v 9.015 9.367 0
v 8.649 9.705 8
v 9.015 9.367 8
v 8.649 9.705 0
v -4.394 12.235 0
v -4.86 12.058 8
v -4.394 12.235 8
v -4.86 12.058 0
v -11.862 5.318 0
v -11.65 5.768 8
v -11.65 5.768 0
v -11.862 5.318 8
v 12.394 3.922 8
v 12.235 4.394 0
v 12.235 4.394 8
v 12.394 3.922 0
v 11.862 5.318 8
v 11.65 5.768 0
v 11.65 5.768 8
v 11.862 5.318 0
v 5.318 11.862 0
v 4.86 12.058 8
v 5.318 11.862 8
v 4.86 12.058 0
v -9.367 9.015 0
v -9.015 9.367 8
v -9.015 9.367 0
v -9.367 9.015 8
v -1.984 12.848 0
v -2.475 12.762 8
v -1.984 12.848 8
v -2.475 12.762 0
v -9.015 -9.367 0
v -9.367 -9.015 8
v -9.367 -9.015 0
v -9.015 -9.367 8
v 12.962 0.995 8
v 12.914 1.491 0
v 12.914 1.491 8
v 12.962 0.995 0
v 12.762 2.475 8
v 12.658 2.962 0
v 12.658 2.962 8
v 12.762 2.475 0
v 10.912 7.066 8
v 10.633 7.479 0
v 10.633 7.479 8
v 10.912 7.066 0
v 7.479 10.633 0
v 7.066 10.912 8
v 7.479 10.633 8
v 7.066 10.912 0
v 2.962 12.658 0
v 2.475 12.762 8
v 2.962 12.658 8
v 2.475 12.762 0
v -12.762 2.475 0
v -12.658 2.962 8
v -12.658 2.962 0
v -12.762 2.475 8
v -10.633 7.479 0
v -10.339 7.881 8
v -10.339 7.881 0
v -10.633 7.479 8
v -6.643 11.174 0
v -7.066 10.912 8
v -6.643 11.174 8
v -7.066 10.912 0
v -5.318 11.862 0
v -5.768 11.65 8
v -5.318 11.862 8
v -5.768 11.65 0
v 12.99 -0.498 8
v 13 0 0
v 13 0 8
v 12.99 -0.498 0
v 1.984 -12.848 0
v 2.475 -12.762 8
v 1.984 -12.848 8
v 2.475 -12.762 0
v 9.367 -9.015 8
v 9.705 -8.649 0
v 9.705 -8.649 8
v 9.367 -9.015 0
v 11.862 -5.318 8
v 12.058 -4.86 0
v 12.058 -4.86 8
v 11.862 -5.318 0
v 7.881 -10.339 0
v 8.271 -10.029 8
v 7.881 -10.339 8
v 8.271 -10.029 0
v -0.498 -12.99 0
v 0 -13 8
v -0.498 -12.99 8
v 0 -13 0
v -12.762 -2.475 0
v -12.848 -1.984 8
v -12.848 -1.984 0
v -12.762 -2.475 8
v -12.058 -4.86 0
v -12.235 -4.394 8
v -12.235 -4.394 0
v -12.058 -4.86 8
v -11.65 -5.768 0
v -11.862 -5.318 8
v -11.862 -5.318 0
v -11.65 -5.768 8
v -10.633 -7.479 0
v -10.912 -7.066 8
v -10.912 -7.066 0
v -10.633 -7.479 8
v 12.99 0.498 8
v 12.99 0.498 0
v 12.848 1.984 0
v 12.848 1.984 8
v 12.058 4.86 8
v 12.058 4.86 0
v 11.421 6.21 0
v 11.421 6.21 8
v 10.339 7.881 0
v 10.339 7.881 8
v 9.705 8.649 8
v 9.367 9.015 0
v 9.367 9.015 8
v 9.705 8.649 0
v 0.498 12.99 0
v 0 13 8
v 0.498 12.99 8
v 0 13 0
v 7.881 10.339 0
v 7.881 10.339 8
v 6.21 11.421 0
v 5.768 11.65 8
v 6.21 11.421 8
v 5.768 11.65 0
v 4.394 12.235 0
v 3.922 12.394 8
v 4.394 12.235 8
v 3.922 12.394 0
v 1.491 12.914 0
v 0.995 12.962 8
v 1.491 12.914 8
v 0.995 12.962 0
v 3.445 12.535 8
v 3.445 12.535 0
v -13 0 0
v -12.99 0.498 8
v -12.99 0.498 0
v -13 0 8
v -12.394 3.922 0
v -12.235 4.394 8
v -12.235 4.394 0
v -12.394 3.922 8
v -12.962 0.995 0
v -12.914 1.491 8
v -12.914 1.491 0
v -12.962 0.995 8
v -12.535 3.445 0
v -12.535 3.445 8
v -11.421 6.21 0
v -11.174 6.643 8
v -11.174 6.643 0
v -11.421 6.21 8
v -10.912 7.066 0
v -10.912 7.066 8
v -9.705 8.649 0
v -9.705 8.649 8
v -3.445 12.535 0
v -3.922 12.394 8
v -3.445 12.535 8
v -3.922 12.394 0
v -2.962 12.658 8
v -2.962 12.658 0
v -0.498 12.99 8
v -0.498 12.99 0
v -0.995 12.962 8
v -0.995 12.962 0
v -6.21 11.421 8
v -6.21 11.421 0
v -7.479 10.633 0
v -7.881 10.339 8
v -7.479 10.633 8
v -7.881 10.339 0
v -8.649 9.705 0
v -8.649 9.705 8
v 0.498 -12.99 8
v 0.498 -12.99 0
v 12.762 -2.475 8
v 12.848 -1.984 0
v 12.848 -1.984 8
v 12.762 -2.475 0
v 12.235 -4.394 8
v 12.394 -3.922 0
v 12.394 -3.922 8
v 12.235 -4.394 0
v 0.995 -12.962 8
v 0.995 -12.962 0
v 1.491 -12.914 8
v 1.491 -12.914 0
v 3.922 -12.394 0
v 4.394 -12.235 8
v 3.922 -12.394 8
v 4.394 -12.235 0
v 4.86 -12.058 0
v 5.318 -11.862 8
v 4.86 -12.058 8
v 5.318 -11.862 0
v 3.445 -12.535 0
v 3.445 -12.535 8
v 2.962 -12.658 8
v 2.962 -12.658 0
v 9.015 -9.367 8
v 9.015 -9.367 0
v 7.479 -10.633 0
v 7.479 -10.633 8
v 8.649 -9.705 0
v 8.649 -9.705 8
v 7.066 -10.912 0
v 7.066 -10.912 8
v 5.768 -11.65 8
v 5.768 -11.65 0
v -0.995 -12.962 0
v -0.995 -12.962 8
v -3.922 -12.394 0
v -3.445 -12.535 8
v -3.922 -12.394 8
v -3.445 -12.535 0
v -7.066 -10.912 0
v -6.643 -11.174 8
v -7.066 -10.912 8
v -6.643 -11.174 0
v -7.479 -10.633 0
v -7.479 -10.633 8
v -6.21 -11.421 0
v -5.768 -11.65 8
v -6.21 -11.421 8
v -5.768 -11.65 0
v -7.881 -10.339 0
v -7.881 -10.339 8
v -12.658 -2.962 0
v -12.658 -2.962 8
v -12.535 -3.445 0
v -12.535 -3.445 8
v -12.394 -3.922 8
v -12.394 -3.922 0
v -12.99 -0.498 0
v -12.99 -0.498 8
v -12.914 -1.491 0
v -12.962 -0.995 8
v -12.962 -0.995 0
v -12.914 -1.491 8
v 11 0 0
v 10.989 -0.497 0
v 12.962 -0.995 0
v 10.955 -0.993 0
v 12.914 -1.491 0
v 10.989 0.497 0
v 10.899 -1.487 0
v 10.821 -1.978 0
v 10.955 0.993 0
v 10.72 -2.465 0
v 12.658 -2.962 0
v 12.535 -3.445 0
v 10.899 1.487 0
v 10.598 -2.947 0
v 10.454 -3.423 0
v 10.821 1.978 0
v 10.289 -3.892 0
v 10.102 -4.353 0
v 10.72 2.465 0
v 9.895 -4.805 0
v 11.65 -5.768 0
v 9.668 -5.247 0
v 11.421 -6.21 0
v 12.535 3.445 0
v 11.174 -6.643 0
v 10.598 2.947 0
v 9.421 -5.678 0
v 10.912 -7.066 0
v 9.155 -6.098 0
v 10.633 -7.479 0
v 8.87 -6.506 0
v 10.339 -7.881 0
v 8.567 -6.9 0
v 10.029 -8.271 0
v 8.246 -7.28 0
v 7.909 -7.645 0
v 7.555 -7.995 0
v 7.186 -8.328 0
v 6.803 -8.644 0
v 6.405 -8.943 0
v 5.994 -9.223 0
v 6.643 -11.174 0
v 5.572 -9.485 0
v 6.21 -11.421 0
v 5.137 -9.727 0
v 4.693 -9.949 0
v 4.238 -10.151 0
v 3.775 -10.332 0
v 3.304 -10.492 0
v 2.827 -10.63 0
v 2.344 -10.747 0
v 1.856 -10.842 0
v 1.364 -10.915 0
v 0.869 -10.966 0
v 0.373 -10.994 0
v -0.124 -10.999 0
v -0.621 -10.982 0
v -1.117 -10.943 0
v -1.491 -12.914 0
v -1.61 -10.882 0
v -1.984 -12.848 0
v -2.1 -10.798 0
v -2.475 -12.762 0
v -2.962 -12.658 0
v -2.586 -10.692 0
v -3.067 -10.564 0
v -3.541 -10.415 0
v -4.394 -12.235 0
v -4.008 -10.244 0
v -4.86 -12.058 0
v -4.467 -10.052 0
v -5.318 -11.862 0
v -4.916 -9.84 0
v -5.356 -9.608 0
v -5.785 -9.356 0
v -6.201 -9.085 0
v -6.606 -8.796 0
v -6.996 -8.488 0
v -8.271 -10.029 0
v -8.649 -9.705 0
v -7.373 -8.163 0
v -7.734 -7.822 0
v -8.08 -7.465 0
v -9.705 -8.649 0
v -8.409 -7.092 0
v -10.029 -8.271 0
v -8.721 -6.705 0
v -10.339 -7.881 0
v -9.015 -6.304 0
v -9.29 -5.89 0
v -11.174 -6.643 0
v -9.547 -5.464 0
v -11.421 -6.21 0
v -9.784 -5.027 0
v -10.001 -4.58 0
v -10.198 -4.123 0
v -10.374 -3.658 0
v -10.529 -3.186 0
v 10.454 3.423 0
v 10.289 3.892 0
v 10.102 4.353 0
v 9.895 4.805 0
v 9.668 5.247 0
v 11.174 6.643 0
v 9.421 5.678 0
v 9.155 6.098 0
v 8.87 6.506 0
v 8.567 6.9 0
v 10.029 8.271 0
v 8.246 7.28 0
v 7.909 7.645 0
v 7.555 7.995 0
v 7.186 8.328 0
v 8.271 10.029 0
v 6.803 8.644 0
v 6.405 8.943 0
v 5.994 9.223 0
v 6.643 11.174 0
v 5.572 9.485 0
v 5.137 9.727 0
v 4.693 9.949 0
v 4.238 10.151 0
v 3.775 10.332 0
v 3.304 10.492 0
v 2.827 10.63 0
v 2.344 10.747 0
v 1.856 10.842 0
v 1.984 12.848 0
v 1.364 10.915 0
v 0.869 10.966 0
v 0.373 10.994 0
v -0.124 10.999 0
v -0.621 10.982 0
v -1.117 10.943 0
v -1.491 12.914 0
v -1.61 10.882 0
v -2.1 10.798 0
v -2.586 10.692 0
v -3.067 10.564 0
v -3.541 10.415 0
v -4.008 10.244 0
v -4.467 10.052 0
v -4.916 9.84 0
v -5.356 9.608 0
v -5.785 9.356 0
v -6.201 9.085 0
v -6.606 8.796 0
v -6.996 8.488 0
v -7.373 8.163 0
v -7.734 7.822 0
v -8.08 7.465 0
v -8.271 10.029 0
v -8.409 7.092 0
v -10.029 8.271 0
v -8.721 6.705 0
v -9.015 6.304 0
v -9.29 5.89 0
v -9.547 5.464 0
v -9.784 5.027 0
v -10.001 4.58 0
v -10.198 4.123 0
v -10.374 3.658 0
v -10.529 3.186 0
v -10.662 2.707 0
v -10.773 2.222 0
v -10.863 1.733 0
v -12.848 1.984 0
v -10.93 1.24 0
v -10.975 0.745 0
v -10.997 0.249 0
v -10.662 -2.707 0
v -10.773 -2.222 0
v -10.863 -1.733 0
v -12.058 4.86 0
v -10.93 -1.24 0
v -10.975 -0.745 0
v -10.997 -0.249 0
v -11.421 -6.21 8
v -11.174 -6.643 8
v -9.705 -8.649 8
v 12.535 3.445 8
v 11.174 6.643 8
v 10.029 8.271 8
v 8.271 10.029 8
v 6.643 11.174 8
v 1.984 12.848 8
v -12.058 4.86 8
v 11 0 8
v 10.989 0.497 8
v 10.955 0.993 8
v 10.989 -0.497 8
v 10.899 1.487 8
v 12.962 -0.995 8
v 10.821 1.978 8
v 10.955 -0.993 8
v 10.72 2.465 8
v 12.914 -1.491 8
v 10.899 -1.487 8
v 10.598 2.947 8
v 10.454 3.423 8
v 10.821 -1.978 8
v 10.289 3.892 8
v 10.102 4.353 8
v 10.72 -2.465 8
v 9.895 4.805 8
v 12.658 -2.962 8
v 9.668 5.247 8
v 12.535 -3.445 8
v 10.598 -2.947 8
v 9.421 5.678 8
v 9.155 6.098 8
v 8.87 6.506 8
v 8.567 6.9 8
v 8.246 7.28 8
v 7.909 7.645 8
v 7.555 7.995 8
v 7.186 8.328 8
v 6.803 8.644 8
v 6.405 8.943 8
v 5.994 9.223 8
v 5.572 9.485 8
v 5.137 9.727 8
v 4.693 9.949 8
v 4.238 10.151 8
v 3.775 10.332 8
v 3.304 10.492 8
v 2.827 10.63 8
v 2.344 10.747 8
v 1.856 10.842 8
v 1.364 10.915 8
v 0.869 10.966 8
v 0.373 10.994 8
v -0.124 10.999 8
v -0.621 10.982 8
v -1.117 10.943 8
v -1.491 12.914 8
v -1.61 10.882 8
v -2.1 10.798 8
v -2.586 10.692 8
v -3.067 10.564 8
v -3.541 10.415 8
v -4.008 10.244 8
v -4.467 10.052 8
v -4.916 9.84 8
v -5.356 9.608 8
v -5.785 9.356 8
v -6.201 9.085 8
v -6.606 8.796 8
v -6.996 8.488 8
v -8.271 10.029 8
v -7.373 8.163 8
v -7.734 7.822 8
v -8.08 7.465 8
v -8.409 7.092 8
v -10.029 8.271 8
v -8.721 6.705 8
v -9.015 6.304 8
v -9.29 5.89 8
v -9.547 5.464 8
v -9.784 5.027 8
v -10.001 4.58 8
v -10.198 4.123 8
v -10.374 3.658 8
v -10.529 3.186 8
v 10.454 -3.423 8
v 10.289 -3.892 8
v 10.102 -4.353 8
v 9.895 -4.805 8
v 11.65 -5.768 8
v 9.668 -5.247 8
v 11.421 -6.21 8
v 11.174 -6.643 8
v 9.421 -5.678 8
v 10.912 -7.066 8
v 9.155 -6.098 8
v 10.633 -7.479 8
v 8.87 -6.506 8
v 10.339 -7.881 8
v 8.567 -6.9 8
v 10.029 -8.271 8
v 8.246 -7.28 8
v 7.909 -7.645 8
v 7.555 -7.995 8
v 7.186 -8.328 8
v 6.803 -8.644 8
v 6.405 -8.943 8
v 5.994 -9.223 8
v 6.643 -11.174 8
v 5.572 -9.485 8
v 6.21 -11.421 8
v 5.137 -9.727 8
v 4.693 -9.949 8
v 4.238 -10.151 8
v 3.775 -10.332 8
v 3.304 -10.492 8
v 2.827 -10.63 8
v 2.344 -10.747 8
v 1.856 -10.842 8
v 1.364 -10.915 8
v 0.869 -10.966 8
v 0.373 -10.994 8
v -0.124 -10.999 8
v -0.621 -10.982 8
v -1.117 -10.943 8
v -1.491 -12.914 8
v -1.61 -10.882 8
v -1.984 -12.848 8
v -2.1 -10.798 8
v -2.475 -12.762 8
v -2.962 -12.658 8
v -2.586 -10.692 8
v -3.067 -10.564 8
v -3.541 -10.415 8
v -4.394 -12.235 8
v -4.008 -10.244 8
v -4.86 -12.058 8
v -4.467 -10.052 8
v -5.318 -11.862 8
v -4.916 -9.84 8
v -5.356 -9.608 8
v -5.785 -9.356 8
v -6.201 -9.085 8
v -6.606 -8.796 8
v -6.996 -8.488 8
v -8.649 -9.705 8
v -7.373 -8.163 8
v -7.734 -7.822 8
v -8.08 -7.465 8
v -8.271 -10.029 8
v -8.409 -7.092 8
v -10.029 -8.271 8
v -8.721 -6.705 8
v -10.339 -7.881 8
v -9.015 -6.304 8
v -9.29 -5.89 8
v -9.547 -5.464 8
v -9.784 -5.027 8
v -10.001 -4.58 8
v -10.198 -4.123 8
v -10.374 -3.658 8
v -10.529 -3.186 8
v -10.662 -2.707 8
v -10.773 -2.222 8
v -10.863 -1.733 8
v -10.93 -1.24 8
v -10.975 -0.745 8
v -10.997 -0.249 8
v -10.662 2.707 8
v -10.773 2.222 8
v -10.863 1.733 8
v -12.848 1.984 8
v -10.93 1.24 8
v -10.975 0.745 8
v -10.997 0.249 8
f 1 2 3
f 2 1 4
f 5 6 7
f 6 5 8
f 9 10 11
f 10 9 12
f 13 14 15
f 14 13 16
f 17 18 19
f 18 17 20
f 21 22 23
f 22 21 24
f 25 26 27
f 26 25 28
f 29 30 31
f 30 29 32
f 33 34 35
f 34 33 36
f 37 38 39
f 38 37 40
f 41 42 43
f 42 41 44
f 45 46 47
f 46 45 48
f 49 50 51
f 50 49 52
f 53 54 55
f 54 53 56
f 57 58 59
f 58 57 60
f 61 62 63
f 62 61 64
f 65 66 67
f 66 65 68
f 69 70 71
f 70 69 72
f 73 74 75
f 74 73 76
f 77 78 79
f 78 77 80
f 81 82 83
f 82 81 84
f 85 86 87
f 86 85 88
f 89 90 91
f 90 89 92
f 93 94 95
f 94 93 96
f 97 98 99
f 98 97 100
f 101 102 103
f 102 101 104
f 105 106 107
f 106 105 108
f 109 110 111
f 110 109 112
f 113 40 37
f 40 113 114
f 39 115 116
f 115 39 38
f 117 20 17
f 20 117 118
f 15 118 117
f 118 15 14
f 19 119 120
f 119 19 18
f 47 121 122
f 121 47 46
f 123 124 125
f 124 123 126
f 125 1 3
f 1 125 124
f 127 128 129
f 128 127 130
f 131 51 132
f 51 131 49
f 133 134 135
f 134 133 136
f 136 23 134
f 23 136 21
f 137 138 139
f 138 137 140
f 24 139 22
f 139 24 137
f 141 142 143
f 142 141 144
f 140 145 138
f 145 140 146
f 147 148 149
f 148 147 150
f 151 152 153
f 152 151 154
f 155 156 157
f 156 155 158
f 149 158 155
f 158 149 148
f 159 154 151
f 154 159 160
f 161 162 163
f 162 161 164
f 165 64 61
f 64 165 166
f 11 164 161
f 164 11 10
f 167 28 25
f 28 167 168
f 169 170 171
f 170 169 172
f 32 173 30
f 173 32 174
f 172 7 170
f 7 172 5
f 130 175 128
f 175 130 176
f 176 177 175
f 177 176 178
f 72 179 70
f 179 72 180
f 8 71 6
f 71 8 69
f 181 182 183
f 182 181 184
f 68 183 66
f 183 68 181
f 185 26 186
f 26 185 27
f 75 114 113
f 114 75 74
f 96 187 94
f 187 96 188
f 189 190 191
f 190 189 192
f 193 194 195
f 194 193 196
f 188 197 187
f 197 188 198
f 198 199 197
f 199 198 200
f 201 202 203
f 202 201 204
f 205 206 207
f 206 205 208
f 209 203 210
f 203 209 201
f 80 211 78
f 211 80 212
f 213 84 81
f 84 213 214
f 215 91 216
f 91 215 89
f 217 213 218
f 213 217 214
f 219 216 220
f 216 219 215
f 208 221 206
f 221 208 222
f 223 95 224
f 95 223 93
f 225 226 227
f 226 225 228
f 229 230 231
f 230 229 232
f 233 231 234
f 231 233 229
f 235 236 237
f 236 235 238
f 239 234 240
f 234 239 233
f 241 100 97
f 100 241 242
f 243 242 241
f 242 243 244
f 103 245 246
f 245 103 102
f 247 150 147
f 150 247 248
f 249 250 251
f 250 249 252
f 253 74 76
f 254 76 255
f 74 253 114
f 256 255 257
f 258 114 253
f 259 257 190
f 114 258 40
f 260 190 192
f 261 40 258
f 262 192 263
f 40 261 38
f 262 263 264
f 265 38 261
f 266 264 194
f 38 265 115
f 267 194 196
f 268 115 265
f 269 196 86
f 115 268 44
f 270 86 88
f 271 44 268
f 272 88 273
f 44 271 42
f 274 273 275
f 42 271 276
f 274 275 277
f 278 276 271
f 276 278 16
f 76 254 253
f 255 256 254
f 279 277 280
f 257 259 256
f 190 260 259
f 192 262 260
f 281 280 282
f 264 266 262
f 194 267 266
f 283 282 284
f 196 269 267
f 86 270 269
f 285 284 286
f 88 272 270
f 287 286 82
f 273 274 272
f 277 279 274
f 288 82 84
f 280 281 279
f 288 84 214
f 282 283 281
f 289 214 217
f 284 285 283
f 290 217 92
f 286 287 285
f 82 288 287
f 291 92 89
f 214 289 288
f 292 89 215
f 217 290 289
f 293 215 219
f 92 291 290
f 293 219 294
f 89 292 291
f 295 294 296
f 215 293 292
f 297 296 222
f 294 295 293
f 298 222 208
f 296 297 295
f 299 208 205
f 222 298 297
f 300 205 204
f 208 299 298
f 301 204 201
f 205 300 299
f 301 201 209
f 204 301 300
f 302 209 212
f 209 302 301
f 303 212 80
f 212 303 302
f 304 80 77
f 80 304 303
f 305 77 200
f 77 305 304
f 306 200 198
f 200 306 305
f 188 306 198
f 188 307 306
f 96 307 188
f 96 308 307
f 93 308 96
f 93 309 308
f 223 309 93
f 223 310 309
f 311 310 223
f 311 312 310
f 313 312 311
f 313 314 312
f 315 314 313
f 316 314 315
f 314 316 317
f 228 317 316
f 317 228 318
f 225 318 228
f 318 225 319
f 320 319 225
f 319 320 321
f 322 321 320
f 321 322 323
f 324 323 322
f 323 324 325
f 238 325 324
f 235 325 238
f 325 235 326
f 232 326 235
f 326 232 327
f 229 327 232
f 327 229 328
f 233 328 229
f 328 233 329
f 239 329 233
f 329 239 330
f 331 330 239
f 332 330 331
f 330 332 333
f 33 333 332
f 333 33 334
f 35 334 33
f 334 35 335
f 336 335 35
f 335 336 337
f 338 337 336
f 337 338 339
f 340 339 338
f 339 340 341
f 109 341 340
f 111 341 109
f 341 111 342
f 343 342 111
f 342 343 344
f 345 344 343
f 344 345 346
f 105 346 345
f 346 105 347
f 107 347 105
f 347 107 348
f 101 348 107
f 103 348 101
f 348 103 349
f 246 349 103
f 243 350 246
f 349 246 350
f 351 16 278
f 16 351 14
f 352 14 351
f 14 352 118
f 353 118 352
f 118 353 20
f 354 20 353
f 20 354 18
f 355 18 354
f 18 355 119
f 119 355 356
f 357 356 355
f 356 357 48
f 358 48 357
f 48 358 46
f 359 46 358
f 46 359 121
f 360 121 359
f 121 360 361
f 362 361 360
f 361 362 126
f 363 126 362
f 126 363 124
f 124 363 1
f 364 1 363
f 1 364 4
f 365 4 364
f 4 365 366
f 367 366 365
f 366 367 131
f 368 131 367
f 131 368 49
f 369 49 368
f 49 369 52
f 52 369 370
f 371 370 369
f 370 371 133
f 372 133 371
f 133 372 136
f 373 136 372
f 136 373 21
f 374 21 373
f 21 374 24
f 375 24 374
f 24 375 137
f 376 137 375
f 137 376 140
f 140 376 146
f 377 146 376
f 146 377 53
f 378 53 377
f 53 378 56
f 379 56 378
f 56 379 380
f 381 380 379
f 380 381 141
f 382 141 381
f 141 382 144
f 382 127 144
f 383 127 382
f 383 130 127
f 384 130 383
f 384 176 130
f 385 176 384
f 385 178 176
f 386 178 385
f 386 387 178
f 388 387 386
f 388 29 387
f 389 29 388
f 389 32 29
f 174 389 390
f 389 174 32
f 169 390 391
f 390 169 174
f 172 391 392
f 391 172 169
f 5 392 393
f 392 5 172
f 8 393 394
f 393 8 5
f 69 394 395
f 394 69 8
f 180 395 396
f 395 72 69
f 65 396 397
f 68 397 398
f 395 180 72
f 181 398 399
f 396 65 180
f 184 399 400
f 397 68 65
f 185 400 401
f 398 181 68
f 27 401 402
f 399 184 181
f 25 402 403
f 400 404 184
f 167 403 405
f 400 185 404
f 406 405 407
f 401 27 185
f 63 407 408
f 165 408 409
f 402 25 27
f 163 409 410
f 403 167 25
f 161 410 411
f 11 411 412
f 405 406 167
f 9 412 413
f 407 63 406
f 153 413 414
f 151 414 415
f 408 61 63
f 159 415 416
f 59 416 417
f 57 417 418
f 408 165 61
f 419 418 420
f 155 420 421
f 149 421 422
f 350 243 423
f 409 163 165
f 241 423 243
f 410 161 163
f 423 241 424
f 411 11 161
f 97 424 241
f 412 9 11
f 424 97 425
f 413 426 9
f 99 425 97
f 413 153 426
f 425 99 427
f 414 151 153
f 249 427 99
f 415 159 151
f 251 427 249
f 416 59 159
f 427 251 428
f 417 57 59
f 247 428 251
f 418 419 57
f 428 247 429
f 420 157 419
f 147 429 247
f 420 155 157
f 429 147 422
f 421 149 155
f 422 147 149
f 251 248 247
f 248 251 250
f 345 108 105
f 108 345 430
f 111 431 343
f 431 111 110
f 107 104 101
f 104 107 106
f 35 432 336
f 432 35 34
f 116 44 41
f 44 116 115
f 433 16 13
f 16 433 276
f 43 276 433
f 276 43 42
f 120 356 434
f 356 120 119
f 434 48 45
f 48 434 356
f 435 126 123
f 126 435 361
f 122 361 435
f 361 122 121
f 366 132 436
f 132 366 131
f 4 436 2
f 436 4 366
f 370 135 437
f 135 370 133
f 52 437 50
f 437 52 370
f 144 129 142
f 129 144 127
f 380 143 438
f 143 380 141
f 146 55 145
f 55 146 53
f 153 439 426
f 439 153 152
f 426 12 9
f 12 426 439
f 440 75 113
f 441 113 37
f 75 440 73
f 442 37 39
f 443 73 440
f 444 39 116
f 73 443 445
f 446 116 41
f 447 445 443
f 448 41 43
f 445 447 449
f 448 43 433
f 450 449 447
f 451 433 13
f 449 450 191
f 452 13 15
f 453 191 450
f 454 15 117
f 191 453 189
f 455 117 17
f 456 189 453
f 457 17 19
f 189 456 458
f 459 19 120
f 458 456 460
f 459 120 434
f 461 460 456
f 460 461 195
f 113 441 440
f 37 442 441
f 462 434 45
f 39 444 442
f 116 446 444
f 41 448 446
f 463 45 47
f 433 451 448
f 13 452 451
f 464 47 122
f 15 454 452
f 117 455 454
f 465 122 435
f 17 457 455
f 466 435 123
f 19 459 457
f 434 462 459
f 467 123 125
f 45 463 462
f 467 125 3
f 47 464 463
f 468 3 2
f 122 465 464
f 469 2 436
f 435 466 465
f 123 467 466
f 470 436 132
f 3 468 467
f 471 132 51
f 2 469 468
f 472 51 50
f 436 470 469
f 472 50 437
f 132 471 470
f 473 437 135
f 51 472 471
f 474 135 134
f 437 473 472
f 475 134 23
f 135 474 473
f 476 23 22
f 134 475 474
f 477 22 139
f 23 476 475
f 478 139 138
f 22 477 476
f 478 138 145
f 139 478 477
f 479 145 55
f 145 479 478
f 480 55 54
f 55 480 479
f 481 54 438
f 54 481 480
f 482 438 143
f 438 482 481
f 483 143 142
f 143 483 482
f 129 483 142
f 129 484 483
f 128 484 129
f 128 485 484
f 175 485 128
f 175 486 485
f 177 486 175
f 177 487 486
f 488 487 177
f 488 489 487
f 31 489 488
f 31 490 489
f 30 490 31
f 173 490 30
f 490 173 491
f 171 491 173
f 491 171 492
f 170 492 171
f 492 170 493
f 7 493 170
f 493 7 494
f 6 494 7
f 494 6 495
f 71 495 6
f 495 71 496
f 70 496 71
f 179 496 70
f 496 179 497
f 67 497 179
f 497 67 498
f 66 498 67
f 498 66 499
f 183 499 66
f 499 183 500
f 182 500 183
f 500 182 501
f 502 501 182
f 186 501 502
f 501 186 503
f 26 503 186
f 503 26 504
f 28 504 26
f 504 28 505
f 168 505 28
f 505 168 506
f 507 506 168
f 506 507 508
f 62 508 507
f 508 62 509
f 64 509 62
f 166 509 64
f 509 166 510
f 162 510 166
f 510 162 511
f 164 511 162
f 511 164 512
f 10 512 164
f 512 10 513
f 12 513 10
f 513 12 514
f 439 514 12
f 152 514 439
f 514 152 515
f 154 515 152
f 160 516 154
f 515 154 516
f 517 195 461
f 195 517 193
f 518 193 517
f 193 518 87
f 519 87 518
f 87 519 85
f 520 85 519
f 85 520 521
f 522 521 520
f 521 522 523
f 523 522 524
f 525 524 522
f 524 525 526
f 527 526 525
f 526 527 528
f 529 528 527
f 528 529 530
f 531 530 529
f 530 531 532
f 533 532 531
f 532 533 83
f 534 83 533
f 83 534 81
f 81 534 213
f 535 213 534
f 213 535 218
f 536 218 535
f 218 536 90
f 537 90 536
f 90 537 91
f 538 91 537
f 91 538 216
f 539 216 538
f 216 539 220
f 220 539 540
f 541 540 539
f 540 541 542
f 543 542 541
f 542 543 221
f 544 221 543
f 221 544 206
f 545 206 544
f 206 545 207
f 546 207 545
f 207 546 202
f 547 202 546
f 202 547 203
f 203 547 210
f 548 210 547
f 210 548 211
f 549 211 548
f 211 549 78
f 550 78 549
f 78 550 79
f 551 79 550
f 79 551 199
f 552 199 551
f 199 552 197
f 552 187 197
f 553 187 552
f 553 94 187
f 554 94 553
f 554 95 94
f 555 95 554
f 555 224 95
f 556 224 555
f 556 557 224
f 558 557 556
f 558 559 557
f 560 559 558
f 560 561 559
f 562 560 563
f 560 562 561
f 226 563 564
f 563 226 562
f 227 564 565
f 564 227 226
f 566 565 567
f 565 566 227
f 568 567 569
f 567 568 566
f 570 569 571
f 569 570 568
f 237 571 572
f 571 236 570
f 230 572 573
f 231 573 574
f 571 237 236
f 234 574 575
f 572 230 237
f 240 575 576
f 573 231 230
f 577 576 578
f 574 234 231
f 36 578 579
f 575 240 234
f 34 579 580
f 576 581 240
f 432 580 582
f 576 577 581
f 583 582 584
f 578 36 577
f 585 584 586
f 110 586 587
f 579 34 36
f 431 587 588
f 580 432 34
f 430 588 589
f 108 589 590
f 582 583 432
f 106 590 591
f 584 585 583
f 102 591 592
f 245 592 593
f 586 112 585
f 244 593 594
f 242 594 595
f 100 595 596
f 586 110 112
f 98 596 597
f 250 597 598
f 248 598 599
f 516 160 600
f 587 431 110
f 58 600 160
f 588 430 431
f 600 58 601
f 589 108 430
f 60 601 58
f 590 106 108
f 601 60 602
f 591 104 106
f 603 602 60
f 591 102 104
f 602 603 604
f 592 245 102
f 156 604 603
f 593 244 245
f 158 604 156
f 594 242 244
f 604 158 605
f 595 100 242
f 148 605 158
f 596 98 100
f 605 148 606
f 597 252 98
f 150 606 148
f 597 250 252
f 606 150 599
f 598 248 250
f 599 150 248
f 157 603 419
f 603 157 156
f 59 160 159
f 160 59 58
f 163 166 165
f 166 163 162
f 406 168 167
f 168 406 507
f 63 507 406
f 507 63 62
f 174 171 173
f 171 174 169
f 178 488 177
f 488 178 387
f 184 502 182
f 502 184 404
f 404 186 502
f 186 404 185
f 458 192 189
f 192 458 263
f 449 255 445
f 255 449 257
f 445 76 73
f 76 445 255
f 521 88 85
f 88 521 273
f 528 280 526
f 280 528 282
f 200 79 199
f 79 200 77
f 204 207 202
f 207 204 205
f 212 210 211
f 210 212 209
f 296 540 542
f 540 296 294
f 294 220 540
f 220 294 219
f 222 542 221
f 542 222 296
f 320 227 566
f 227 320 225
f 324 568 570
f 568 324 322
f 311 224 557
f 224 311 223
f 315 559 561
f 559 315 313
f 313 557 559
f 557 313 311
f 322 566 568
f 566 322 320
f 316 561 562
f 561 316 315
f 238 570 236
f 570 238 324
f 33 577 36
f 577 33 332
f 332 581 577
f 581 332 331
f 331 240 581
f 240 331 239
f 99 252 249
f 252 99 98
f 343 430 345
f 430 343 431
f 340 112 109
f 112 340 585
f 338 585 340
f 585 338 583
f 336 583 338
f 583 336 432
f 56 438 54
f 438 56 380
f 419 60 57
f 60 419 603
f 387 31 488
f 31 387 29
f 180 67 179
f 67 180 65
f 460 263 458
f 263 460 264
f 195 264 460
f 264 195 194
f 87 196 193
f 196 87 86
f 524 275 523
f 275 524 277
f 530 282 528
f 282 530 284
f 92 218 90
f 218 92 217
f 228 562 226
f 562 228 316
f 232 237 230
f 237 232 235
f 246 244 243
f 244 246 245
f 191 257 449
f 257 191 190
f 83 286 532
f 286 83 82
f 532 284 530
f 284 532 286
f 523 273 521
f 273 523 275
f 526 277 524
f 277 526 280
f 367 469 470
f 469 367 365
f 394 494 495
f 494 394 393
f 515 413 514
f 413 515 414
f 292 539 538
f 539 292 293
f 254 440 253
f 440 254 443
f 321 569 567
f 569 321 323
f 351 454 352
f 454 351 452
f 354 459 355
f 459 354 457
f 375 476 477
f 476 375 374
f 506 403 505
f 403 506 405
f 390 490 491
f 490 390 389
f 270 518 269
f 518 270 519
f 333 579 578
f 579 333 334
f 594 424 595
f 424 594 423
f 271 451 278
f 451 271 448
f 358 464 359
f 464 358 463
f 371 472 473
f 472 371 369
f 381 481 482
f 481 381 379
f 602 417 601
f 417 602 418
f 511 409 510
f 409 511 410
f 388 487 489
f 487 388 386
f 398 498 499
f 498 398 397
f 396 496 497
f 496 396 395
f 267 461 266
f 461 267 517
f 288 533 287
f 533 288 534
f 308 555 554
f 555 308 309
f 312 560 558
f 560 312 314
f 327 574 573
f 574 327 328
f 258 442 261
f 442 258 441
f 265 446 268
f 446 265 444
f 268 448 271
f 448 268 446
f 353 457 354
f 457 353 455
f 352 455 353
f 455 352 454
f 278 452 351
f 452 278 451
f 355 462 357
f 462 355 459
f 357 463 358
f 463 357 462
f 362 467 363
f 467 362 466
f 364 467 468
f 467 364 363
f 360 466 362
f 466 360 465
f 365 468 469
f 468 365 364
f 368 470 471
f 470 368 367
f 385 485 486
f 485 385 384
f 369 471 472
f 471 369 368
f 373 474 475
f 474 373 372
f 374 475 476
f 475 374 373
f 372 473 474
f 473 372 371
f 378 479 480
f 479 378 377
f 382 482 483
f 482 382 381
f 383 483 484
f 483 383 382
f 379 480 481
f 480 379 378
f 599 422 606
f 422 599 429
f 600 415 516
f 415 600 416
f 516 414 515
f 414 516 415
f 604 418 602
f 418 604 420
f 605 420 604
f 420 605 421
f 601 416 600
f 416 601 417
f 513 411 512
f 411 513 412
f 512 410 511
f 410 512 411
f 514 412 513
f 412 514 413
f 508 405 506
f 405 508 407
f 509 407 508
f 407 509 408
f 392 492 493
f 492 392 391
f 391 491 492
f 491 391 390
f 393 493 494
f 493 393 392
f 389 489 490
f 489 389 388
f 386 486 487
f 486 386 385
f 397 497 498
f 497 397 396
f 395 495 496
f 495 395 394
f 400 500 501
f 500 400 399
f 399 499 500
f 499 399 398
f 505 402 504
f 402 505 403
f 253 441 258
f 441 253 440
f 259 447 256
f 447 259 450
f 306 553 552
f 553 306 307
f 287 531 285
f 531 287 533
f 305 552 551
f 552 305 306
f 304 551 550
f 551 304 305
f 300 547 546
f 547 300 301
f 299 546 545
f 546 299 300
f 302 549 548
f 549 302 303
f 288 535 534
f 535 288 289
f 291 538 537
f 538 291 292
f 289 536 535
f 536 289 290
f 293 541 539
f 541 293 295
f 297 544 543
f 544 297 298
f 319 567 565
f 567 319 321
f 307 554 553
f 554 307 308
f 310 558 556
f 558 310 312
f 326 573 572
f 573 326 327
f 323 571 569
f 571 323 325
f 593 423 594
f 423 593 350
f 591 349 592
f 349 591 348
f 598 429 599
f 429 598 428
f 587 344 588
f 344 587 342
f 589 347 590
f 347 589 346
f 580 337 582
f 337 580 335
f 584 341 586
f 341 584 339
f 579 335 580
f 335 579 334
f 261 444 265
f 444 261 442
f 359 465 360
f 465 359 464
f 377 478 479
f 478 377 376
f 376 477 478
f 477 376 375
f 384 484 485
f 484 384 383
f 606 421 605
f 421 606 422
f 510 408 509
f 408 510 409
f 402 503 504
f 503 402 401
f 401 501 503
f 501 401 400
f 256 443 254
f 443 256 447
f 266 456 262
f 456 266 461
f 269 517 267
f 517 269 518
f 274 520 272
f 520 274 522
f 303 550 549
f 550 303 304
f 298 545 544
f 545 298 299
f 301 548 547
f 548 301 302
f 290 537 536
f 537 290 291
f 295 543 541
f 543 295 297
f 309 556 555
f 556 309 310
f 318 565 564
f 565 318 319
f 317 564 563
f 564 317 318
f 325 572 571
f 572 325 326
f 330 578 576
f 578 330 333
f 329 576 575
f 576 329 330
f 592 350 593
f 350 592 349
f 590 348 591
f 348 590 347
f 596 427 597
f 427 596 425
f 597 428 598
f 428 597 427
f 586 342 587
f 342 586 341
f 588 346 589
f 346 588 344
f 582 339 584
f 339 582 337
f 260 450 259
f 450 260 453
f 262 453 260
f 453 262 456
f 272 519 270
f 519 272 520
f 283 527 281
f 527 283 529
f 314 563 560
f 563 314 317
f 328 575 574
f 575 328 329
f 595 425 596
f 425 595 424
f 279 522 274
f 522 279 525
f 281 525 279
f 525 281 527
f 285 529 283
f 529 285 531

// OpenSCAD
$fa = .5;
$fs = .5;

difference () {
  cylinder (h=8, r=13);
  cylinder (h=11, r=11);
}
